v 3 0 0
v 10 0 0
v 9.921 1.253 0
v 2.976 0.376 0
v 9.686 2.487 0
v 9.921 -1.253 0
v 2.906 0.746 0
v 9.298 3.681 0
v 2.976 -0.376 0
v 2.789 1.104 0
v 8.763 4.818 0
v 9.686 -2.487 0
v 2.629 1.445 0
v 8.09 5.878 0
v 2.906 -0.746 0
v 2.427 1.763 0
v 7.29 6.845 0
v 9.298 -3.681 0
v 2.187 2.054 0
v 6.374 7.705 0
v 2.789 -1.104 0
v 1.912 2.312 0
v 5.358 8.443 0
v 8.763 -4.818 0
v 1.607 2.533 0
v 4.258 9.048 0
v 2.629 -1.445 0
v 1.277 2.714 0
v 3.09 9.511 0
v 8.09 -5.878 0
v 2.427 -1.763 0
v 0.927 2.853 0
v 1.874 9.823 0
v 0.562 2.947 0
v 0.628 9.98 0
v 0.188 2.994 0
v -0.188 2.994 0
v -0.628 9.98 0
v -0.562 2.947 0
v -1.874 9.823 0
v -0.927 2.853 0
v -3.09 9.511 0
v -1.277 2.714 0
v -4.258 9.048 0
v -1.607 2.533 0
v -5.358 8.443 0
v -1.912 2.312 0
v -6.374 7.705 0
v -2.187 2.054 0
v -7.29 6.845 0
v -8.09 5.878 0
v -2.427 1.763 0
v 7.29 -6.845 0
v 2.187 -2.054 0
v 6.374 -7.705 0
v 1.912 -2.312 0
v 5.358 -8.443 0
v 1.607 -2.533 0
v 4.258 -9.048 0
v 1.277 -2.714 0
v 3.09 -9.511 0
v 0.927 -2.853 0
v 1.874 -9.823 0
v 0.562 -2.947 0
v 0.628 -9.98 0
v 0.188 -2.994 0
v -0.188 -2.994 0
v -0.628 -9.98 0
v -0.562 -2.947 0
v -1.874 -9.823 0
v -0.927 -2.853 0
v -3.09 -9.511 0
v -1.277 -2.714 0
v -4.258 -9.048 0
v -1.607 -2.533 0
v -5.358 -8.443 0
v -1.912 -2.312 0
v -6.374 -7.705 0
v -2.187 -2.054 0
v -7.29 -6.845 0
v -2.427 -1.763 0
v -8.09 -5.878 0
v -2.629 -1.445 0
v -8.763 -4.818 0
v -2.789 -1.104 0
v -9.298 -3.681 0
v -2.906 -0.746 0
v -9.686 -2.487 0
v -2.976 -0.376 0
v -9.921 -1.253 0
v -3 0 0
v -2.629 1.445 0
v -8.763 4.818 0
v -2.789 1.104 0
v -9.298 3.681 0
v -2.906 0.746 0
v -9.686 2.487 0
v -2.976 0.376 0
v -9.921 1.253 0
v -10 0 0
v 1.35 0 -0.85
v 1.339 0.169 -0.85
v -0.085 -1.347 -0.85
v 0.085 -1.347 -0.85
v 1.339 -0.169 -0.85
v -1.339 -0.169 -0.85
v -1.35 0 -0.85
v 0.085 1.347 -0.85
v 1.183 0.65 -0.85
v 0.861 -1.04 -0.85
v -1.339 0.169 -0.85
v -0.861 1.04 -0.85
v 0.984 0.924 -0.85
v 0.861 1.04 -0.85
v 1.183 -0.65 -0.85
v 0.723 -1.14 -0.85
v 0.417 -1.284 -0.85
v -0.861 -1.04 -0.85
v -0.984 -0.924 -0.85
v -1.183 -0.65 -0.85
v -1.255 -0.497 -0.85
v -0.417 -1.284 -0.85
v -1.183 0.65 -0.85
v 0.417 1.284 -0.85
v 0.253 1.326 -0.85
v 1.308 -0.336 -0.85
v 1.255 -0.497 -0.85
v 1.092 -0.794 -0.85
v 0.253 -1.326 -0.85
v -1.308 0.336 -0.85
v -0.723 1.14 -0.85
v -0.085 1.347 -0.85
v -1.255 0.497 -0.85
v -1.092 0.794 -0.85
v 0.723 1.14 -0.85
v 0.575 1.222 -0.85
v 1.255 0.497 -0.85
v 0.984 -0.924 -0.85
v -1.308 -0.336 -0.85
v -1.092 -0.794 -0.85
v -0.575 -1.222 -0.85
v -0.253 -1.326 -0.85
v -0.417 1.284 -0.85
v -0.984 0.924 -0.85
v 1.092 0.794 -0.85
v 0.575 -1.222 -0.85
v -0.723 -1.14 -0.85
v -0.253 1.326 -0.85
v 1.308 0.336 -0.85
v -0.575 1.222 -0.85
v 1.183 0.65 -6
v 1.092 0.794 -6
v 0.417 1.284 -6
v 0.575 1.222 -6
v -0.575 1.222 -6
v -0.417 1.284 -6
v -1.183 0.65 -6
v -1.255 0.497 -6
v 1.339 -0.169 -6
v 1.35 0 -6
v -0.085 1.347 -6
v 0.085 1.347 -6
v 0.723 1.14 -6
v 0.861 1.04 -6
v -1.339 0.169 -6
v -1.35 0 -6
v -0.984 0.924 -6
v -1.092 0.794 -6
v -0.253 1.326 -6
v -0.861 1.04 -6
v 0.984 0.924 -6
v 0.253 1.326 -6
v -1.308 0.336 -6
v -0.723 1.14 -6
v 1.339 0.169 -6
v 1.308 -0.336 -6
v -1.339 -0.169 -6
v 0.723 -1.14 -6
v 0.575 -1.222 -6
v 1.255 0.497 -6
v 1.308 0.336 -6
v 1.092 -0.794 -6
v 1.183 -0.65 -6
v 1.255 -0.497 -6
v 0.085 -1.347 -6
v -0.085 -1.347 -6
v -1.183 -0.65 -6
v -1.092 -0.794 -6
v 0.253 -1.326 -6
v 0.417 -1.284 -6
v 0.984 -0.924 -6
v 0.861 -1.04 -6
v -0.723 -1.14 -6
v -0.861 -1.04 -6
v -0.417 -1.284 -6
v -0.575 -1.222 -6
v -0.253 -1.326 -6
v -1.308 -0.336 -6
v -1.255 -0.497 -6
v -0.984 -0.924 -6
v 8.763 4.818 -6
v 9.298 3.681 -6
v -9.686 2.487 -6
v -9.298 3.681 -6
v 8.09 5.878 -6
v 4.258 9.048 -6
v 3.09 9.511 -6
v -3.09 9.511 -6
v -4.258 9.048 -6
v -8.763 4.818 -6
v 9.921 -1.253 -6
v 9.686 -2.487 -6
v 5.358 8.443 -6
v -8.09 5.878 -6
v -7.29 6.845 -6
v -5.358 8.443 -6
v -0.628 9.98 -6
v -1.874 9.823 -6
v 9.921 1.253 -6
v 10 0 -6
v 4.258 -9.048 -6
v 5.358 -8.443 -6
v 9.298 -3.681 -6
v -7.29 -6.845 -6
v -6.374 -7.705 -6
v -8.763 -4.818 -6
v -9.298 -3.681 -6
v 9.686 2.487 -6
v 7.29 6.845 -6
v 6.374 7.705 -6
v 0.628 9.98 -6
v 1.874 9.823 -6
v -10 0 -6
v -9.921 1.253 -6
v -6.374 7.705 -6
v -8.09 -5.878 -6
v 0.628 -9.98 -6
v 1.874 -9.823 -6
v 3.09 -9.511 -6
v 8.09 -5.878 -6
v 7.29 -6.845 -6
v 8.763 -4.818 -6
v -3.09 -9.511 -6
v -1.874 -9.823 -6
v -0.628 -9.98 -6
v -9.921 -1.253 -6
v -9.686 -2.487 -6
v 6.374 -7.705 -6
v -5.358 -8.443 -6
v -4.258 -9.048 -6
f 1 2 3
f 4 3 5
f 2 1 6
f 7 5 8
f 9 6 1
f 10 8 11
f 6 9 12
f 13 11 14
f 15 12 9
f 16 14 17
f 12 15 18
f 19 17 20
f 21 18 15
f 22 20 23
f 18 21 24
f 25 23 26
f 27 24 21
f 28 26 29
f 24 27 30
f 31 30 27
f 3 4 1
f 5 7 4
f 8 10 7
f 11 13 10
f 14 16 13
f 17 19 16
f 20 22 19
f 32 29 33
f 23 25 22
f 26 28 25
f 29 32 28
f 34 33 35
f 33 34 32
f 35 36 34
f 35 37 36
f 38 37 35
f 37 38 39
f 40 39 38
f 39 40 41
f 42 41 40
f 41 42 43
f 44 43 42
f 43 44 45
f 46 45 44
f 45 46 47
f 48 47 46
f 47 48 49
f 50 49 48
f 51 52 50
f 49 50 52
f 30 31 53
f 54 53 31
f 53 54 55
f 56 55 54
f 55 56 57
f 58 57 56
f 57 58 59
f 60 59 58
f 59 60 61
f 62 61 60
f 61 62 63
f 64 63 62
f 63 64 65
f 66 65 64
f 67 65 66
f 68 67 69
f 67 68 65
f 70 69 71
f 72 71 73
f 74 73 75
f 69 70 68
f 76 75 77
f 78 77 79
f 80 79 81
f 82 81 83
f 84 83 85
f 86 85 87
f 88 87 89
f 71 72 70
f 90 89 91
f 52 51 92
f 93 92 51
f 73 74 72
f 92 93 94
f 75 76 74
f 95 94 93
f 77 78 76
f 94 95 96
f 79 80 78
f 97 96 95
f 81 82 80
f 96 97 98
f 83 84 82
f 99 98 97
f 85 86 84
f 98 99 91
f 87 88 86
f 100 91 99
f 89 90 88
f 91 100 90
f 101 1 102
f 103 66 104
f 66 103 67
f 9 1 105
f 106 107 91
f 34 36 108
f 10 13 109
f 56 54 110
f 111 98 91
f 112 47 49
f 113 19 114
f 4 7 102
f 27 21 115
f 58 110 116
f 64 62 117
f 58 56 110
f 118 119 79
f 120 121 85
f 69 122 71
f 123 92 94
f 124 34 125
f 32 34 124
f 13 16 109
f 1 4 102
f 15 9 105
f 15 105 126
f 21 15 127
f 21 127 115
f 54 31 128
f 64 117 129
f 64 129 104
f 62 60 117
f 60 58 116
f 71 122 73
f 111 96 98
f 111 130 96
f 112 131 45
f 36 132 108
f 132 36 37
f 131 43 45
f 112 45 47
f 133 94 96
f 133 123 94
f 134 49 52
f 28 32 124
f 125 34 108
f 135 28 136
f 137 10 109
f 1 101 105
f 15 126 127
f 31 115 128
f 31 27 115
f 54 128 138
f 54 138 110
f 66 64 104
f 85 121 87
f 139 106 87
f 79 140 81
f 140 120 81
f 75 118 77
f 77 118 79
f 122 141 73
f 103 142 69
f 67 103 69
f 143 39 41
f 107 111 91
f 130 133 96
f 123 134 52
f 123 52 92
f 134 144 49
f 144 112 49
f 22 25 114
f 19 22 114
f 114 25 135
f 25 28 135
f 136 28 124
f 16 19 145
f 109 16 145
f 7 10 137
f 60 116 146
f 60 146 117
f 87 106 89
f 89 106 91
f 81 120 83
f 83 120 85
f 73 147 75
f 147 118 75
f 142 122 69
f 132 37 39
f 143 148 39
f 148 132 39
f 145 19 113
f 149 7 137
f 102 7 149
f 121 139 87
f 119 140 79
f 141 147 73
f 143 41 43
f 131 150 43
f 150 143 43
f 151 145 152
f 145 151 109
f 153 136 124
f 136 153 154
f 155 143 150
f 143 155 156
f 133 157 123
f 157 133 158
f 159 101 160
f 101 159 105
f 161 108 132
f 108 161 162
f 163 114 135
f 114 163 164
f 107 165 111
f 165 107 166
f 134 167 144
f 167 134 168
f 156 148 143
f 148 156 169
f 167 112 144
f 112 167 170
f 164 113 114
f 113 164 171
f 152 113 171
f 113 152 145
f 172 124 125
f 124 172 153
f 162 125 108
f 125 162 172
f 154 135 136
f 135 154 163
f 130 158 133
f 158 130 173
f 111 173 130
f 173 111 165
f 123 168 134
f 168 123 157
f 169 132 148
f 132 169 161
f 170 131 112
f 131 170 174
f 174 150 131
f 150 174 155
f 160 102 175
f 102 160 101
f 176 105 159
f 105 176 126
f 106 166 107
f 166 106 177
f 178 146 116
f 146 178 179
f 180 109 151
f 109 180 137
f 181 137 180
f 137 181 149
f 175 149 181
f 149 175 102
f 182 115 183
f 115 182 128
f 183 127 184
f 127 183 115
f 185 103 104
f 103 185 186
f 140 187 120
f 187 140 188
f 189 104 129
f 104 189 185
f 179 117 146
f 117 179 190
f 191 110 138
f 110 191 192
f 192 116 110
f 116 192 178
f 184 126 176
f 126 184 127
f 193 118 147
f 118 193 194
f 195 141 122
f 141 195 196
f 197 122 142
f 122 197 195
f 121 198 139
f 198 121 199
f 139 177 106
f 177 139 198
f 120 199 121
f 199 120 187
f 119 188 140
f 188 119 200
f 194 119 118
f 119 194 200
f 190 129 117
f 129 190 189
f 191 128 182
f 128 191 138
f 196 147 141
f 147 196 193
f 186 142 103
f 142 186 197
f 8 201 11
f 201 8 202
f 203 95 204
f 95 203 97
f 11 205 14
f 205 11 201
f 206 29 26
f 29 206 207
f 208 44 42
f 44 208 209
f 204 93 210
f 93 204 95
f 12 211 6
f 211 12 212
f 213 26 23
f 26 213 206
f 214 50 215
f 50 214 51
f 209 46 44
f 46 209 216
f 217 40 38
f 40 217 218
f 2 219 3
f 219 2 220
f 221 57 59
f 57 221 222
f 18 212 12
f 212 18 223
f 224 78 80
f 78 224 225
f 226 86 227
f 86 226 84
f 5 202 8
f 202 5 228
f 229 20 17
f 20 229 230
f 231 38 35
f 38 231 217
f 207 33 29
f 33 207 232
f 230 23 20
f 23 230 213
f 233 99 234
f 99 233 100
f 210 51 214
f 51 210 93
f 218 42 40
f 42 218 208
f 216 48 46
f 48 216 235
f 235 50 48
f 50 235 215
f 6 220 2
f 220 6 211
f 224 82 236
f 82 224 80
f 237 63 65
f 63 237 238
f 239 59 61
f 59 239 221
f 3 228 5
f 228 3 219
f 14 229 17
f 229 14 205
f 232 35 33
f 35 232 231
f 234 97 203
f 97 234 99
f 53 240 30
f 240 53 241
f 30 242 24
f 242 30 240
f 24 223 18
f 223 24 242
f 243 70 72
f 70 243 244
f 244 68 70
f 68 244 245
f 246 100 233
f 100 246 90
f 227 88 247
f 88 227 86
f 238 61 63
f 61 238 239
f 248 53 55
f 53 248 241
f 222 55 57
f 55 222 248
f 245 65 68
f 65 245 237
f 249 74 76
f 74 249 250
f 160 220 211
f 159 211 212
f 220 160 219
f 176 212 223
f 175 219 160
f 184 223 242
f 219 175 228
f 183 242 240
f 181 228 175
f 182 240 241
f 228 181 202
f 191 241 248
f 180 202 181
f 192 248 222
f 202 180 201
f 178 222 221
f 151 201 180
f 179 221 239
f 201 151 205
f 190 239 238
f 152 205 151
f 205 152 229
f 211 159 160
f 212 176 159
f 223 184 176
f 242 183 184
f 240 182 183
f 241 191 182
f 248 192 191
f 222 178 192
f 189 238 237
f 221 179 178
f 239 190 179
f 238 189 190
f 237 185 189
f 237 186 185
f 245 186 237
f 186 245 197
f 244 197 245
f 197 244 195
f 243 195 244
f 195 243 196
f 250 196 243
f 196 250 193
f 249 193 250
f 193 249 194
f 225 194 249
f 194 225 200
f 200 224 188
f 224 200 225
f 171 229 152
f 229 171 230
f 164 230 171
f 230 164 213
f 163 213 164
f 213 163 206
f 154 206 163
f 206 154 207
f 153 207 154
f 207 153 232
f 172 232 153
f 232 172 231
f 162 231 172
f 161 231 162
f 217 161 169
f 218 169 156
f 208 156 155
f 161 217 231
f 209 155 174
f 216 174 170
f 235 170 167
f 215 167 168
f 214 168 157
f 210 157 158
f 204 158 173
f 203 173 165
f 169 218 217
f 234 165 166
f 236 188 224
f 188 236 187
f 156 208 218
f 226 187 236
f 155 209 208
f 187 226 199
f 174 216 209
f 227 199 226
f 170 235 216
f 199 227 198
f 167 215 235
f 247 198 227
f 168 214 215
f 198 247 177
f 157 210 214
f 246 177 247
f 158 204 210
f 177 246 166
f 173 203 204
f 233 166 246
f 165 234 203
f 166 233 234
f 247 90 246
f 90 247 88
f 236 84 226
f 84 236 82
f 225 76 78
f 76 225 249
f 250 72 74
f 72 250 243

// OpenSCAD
$fn = 50;

difference() {
	union() {
		translate(v = [0, 0, -6.0]) {
			cylinder(h = 6, r = 10.0);
		}
	}
	union() {
		translate(v = [0, 0, 0]) {
			rotate(a = [0, 0, 0]) {
				difference() {
					union() {
						translate(v = [0, 0, -9.0]) {
							cylinder(h = 9, r = 1.0);
						}
						translate(v = [0, 0, -0.85]) {
							cylinder(h = 0.85, r1 = 1.35, r2 = 3.0);
						}
						translate(v = [0, 0, -9.0]) {
							cylinder(h = 9, r = 1.35);
						}
						translate(v = [0, 0, -9.0]) {
							cylinder(h = 9, r = 1.0);
						}
					}
					union();
				}
			}
		}
	}
}
